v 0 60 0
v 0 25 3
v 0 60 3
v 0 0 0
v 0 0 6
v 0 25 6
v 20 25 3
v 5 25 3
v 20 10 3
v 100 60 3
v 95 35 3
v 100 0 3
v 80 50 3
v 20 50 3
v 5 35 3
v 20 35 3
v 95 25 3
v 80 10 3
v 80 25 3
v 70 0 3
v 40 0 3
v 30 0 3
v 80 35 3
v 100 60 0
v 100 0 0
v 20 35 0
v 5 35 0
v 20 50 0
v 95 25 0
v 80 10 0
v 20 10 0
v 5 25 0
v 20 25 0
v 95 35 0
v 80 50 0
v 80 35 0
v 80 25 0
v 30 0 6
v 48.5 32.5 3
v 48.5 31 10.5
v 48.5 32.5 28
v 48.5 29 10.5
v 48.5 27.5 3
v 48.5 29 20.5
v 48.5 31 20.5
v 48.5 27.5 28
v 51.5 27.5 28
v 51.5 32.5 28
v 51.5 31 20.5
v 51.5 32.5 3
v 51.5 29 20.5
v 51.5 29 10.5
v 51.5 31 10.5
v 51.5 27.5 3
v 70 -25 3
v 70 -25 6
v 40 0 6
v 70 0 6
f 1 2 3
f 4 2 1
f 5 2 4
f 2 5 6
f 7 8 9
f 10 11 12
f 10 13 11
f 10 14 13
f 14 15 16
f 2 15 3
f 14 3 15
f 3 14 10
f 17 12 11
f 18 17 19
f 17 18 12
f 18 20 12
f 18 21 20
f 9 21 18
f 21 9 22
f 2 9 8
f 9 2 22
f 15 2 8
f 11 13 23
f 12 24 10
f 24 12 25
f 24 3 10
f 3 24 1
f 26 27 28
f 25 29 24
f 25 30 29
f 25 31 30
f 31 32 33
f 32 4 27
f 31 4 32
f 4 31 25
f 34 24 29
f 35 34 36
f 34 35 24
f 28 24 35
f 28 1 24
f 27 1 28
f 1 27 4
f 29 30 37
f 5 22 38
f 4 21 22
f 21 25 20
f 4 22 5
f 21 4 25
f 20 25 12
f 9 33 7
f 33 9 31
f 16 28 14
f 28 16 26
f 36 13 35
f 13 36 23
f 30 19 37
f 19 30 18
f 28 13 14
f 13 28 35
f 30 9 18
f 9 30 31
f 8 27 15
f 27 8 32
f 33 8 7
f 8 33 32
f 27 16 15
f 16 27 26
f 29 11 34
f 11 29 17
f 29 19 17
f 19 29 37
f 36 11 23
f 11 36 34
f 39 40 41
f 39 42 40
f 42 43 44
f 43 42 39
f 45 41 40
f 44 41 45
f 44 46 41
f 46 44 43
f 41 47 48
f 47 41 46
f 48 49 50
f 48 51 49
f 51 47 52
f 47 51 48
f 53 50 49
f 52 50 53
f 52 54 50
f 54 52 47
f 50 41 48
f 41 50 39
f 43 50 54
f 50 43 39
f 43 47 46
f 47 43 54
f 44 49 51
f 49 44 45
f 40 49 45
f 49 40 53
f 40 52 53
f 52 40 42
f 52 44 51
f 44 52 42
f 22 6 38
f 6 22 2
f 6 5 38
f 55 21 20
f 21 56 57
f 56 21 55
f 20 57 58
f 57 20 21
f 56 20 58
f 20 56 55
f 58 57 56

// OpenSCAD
// Parameters
frame_length = 100;
frame_width = 60;
frame_thickness = 3;
cutout_length = 60;
cutout_width = 40;
slot_width = 10;
slot_length = 20;
bracket_height = 25;
bracket_base = 30;
bracket_thickness = 3;
rib_thickness = 3;
rib_height = 25;
rib_width = 5;
rib_slot_height = 10;
rib_slot_width = 2;

// Base Frame
module base_frame() {
    difference() {
        cube([frame_length, frame_width, frame_thickness]);
        translate([(frame_length - cutout_length)/2, (frame_width - cutout_width)/2, 0])
            cube([cutout_length, cutout_width, frame_thickness + 1]);
        // Left slot
        translate([5, (frame_width - slot_width)/2, 0])
            cube([slot_length, slot_width, frame_thickness + 1]);
        // Right slot
        translate([frame_length - slot_length - 5, (frame_width - slot_width)/2, 0])
            cube([slot_length, slot_width, frame_thickness + 1]);
    }
}

// Sloped Support Bracket
module sloped_support_bracket(mirrorX = false) {
    translate([mirrorX ? frame_length - bracket_base : 0, 0, frame_thickness]) {
        rotate([0, 0, mirrorX ? 180 : 0])
        linear_extrude(height = bracket_thickness)
        polygon(points=[[0,0], [bracket_base,0], [0,bracket_height]]);
    }
}

// Vertical Support Rib
module vertical_support_rib() {
    translate([(frame_length - rib_thickness)/2, (frame_width - rib_width)/2, frame_thickness])
        difference() {
            cube([rib_thickness, rib_width, rib_height]);
            translate([0, (rib_width - rib_slot_width)/2, rib_height/2 - rib_slot_height/2])
                cube([rib_thickness + 1, rib_slot_width, rib_slot_height]);
        }
}

// Assembly
module assembly() {
    base_frame();
    sloped_support_bracket(false);
    sloped_support_bracket(true);
    vertical_support_rib();
}

assembly();
